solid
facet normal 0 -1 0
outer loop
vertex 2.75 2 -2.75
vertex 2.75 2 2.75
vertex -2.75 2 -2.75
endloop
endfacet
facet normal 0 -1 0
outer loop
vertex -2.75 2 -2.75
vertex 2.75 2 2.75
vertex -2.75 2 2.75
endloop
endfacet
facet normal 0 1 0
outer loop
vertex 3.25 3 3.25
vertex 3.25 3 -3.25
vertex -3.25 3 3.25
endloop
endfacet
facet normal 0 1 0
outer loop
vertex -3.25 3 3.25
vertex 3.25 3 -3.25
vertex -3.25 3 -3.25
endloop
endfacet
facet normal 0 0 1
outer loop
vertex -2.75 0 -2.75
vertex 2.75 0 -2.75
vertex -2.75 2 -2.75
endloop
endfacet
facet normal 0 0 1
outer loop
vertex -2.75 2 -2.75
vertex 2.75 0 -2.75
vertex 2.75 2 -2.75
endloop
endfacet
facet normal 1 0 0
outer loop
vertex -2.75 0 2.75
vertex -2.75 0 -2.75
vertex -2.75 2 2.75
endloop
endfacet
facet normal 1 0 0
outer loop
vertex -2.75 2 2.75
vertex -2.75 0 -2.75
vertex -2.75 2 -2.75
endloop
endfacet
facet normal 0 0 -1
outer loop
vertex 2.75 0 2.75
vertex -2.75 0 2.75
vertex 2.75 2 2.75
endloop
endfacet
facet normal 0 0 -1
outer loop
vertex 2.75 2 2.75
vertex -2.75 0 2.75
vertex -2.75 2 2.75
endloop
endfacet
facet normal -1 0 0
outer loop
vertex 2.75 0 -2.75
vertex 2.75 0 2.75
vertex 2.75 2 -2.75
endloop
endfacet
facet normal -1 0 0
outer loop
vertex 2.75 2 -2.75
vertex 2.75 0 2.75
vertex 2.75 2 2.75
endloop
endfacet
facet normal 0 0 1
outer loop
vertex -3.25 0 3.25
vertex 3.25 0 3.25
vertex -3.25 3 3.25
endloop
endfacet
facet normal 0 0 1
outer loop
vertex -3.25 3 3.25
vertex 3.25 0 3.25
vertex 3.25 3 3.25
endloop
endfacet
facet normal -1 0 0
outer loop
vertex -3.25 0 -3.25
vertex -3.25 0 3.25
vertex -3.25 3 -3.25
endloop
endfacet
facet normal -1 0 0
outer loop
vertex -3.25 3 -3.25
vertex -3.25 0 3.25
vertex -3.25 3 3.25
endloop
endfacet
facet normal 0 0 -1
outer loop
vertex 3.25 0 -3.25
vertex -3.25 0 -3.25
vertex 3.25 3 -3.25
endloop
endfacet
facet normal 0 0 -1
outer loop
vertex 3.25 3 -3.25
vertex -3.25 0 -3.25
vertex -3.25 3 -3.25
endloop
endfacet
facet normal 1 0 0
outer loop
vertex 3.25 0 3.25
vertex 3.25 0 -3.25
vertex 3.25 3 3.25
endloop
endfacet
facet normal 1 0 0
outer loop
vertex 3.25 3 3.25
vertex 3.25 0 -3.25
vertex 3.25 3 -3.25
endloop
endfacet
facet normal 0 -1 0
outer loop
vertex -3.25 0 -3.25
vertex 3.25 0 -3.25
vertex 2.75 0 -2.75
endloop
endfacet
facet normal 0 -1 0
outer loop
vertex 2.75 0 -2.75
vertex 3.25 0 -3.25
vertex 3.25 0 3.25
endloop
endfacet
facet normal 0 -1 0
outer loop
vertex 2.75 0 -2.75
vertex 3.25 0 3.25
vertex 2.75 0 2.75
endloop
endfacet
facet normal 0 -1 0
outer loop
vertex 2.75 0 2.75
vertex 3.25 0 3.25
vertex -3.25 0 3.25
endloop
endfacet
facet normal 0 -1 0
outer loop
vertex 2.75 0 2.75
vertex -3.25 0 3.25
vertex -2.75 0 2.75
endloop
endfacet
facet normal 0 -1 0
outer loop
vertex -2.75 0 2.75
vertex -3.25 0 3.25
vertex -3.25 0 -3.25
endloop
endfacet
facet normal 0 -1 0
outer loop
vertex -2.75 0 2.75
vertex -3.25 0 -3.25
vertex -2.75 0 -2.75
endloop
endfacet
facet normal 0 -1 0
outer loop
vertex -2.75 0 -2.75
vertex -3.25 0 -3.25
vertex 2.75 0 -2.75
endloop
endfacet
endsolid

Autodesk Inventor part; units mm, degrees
ref_plane "YZ Plane" through (0, 0, 0) normal (1, 0, 0) x (0, 1, 0)
ref_plane "XZ Plane" through (0, 0, 0) normal (0, 1, 0) x (-1, 0, 0)
ref_plane "XY Plane" through (0, 0, 0) normal (0, 0, 1) x (1, 0, 0)
sketch "Sketch2" plane through (0, 0, 0) normal (0, 1, 0) x (-1, 0, 0)
  line L0 (-2.75, -2.75) -> (2.75, -2.75)
  line L1 (2.75, -2.75) -> (2.75, 2.75)
  line L2 (2.75, 2.75) -> (-2.75, 2.75)
  line L3 (-2.75, 2.75) -> (-2.75, -2.75)
  line L4 (-2.75, -2.75) -> (2.75, 2.75) construction
  line L5 (2.75, -2.75) -> (-2.75, 2.75) construction
  line L6 (3.25, 3.25) -> (-3.25, 3.25)
  line L7 (-3.25, 3.25) -> (-3.25, -3.25)
  line L8 (-3.25, -3.25) -> (3.25, -3.25)
  line L9 (3.25, -3.25) -> (3.25, 3.25)
  line L10 (3.25, 3.25) -> (-3.25, -3.25) construction
  line L11 (-3.25, 3.25) -> (3.25, -3.25) construction
  point P0 (0, 0)
  dimension "d2" = 5.5
  dimension "d3" = 5.5
  dimension "d6" = 6.5
  dimension "d7" = 6.5
extrude "Extrusion1" add sketch "Sketch2" along normal blind 2
sketch "Sketch4" plane through (0, 2, 0) normal (0, 1, 0) x (1, 0, 0)
  line L0 (-3.25, 3.25) -> (-3.25, -3.25) projected
  line L1 (3.25, -3.25) -> (3.25, 3.25) projected
  line L2 (-3.25, -3.25) -> (3.25, -3.25)
  line L3 (3.25, -3.25) -> (3.25, 3.25)
  line L4 (3.25, 3.25) -> (-3.25, 3.25)
  line L5 (-3.25, 3.25) -> (-3.25, -3.25)
  point P0 (0, 0)
  dimension "d10" = 6.5
extrude "Extrusion2" add sketch "Sketch4" along normal blind 1
properties part number "snapfit_lid_v03"
